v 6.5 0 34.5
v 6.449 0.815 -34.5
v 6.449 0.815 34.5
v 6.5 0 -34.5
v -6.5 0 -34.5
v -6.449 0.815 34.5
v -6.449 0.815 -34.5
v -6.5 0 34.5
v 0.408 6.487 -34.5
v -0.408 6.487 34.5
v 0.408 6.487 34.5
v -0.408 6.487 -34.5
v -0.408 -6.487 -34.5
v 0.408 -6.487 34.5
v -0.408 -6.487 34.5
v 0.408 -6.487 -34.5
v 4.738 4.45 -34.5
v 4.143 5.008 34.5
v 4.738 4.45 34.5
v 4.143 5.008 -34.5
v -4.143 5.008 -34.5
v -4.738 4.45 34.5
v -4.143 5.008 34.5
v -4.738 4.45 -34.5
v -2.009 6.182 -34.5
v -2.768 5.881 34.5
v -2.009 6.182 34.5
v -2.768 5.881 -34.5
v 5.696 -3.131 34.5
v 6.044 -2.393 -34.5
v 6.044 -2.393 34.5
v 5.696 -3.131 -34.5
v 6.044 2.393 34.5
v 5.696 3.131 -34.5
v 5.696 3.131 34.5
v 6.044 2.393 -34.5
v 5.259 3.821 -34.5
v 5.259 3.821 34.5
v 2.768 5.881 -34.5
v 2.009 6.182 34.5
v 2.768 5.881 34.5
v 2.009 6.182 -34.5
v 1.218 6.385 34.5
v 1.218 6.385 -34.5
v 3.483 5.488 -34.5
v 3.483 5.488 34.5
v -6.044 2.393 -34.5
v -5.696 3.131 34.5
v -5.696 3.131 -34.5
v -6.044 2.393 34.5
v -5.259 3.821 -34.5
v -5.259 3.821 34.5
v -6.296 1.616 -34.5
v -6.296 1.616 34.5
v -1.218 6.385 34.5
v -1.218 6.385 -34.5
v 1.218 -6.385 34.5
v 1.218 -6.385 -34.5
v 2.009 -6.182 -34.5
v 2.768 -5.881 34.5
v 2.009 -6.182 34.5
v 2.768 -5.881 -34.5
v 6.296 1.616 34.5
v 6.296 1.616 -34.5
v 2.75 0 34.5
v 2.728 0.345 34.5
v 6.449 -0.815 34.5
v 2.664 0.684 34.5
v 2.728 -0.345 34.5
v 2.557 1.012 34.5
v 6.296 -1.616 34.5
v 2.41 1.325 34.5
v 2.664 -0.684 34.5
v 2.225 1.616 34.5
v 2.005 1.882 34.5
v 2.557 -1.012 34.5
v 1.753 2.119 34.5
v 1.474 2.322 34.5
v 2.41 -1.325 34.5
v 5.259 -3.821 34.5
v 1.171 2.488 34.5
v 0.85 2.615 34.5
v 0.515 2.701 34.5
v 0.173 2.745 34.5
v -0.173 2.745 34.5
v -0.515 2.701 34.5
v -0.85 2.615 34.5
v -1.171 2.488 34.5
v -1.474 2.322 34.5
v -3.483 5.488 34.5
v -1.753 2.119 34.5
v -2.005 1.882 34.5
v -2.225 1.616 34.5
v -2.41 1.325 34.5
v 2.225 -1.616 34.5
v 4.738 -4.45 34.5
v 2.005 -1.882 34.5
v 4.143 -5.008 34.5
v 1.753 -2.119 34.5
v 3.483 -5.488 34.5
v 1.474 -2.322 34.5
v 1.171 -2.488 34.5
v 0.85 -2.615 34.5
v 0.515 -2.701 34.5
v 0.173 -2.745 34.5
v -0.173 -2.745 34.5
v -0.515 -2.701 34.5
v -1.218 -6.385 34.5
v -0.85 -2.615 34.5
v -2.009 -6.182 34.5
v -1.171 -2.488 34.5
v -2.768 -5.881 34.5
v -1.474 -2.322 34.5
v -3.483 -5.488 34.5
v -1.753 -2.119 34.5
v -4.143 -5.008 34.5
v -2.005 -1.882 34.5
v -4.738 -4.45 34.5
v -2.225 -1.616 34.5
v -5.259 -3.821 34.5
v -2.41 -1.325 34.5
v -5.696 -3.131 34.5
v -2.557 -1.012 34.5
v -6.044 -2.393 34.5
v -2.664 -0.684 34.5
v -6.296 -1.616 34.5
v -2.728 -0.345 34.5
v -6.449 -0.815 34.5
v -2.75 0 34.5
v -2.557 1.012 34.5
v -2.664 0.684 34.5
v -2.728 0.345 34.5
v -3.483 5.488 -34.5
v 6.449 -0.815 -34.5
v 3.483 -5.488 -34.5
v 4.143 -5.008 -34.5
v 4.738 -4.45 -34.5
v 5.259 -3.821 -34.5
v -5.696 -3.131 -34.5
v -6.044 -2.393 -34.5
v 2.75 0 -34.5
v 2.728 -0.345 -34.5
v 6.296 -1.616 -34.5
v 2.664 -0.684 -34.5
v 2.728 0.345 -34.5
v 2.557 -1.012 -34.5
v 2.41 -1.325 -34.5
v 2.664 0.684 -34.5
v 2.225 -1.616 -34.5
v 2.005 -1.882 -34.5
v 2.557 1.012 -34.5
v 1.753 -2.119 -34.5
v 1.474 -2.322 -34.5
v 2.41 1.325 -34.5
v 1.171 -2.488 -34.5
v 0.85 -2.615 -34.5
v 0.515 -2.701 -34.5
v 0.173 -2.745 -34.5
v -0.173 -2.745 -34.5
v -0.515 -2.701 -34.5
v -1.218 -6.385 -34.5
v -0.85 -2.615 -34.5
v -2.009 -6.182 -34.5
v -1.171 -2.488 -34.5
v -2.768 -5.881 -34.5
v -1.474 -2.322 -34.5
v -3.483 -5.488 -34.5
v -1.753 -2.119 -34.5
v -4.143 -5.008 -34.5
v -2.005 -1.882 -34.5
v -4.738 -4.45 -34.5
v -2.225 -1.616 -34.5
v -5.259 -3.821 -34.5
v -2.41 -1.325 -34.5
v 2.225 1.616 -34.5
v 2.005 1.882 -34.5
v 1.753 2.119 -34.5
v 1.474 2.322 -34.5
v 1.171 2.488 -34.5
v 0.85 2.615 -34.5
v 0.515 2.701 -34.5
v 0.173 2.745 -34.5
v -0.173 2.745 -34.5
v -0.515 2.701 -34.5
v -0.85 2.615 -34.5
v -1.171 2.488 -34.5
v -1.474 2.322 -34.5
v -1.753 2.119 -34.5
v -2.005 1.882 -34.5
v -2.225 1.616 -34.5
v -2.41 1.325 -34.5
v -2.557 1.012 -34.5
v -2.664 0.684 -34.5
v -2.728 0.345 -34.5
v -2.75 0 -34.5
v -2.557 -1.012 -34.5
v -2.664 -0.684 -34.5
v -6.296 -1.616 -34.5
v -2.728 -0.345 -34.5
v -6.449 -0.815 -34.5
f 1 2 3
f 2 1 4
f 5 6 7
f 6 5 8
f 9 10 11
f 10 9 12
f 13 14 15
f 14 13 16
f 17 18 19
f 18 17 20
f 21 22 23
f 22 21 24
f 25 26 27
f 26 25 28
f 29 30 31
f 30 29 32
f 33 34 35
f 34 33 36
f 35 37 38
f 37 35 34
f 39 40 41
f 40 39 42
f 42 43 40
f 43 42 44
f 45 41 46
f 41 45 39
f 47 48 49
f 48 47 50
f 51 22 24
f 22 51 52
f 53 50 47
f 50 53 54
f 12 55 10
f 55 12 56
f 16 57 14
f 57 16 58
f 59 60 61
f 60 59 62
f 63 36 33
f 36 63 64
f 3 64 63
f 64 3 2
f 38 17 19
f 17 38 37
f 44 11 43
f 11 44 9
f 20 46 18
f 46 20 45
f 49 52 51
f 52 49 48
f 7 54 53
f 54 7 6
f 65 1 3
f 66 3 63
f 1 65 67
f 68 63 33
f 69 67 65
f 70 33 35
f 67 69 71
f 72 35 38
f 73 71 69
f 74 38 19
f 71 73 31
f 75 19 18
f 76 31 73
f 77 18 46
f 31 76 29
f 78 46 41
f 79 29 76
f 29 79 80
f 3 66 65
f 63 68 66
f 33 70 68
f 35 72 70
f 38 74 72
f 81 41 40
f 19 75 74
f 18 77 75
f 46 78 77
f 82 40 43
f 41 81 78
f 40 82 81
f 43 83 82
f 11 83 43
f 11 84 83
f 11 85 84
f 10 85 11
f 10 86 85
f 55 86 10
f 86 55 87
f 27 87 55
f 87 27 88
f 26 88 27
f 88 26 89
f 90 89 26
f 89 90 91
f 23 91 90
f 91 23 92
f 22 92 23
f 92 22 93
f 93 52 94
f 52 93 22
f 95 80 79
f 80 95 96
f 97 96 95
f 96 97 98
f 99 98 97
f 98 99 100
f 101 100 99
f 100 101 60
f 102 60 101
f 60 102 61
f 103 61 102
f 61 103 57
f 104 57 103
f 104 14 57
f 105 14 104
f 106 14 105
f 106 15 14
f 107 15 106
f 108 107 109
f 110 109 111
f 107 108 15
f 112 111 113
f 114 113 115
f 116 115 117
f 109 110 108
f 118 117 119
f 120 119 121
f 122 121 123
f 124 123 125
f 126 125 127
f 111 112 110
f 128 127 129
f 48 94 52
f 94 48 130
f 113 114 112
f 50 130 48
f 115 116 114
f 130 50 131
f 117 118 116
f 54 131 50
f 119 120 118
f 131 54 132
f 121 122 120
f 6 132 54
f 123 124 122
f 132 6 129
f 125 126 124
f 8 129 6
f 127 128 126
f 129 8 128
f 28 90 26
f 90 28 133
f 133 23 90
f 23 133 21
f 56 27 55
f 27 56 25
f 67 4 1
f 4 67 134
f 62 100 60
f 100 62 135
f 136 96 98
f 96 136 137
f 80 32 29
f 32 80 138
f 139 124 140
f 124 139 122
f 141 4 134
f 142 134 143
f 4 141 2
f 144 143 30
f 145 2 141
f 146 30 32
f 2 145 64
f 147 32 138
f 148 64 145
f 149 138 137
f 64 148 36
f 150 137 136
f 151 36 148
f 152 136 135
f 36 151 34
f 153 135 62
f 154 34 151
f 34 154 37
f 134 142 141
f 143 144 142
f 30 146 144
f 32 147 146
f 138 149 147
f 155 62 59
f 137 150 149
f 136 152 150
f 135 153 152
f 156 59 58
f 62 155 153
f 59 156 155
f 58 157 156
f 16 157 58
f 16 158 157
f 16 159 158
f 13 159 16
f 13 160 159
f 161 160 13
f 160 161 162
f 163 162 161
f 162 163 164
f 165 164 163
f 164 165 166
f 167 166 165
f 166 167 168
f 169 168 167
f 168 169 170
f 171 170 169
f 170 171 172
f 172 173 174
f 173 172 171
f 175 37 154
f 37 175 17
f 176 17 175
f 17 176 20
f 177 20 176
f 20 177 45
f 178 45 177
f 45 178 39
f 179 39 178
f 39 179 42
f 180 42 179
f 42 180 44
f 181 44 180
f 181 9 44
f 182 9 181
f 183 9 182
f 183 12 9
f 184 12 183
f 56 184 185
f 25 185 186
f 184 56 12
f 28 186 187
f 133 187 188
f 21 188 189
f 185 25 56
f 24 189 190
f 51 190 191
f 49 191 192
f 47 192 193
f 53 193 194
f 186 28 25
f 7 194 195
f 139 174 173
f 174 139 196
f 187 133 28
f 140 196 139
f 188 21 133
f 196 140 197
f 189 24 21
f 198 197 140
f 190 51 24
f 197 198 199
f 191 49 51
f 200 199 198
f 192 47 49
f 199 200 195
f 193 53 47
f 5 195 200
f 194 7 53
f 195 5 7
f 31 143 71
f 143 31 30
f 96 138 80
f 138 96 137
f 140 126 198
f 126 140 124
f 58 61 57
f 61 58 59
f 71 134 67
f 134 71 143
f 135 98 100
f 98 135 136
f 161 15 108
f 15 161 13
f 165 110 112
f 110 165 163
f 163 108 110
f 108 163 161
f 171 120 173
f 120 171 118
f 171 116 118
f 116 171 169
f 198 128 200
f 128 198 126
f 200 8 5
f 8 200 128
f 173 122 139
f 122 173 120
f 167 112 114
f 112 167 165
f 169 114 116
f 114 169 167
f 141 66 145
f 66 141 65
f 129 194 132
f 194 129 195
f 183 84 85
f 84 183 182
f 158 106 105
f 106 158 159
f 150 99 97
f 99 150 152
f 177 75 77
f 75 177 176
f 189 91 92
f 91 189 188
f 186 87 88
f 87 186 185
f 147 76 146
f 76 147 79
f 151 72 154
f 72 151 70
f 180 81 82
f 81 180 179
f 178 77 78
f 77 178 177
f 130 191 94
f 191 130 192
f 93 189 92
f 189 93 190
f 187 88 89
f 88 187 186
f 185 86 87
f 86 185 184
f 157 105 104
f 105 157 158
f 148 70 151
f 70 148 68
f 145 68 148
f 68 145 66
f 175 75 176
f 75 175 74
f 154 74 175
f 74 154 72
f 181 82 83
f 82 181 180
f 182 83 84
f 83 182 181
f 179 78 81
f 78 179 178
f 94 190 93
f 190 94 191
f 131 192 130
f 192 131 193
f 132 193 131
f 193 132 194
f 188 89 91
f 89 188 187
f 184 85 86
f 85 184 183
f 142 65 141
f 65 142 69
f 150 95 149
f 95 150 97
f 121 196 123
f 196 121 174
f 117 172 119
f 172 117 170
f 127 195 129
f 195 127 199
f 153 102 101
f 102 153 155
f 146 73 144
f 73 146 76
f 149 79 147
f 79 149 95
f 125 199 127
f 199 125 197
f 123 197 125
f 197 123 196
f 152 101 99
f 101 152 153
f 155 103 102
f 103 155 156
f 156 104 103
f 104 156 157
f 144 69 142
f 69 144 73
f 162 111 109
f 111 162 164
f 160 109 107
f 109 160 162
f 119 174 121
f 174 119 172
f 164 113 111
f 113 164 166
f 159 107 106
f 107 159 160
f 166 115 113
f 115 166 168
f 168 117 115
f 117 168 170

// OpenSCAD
$fn = 50;


difference() {
	union() {
		translate(v = [0, 0, -34.5000000000]) {
			cylinder(h = 69, r = 6.5000000000);
		}
	}
	union() {
		translate(v = [0, 0, -100.0000000000]) {
			cylinder(h = 200, r = 2.7500000000);
		}
	}
}
